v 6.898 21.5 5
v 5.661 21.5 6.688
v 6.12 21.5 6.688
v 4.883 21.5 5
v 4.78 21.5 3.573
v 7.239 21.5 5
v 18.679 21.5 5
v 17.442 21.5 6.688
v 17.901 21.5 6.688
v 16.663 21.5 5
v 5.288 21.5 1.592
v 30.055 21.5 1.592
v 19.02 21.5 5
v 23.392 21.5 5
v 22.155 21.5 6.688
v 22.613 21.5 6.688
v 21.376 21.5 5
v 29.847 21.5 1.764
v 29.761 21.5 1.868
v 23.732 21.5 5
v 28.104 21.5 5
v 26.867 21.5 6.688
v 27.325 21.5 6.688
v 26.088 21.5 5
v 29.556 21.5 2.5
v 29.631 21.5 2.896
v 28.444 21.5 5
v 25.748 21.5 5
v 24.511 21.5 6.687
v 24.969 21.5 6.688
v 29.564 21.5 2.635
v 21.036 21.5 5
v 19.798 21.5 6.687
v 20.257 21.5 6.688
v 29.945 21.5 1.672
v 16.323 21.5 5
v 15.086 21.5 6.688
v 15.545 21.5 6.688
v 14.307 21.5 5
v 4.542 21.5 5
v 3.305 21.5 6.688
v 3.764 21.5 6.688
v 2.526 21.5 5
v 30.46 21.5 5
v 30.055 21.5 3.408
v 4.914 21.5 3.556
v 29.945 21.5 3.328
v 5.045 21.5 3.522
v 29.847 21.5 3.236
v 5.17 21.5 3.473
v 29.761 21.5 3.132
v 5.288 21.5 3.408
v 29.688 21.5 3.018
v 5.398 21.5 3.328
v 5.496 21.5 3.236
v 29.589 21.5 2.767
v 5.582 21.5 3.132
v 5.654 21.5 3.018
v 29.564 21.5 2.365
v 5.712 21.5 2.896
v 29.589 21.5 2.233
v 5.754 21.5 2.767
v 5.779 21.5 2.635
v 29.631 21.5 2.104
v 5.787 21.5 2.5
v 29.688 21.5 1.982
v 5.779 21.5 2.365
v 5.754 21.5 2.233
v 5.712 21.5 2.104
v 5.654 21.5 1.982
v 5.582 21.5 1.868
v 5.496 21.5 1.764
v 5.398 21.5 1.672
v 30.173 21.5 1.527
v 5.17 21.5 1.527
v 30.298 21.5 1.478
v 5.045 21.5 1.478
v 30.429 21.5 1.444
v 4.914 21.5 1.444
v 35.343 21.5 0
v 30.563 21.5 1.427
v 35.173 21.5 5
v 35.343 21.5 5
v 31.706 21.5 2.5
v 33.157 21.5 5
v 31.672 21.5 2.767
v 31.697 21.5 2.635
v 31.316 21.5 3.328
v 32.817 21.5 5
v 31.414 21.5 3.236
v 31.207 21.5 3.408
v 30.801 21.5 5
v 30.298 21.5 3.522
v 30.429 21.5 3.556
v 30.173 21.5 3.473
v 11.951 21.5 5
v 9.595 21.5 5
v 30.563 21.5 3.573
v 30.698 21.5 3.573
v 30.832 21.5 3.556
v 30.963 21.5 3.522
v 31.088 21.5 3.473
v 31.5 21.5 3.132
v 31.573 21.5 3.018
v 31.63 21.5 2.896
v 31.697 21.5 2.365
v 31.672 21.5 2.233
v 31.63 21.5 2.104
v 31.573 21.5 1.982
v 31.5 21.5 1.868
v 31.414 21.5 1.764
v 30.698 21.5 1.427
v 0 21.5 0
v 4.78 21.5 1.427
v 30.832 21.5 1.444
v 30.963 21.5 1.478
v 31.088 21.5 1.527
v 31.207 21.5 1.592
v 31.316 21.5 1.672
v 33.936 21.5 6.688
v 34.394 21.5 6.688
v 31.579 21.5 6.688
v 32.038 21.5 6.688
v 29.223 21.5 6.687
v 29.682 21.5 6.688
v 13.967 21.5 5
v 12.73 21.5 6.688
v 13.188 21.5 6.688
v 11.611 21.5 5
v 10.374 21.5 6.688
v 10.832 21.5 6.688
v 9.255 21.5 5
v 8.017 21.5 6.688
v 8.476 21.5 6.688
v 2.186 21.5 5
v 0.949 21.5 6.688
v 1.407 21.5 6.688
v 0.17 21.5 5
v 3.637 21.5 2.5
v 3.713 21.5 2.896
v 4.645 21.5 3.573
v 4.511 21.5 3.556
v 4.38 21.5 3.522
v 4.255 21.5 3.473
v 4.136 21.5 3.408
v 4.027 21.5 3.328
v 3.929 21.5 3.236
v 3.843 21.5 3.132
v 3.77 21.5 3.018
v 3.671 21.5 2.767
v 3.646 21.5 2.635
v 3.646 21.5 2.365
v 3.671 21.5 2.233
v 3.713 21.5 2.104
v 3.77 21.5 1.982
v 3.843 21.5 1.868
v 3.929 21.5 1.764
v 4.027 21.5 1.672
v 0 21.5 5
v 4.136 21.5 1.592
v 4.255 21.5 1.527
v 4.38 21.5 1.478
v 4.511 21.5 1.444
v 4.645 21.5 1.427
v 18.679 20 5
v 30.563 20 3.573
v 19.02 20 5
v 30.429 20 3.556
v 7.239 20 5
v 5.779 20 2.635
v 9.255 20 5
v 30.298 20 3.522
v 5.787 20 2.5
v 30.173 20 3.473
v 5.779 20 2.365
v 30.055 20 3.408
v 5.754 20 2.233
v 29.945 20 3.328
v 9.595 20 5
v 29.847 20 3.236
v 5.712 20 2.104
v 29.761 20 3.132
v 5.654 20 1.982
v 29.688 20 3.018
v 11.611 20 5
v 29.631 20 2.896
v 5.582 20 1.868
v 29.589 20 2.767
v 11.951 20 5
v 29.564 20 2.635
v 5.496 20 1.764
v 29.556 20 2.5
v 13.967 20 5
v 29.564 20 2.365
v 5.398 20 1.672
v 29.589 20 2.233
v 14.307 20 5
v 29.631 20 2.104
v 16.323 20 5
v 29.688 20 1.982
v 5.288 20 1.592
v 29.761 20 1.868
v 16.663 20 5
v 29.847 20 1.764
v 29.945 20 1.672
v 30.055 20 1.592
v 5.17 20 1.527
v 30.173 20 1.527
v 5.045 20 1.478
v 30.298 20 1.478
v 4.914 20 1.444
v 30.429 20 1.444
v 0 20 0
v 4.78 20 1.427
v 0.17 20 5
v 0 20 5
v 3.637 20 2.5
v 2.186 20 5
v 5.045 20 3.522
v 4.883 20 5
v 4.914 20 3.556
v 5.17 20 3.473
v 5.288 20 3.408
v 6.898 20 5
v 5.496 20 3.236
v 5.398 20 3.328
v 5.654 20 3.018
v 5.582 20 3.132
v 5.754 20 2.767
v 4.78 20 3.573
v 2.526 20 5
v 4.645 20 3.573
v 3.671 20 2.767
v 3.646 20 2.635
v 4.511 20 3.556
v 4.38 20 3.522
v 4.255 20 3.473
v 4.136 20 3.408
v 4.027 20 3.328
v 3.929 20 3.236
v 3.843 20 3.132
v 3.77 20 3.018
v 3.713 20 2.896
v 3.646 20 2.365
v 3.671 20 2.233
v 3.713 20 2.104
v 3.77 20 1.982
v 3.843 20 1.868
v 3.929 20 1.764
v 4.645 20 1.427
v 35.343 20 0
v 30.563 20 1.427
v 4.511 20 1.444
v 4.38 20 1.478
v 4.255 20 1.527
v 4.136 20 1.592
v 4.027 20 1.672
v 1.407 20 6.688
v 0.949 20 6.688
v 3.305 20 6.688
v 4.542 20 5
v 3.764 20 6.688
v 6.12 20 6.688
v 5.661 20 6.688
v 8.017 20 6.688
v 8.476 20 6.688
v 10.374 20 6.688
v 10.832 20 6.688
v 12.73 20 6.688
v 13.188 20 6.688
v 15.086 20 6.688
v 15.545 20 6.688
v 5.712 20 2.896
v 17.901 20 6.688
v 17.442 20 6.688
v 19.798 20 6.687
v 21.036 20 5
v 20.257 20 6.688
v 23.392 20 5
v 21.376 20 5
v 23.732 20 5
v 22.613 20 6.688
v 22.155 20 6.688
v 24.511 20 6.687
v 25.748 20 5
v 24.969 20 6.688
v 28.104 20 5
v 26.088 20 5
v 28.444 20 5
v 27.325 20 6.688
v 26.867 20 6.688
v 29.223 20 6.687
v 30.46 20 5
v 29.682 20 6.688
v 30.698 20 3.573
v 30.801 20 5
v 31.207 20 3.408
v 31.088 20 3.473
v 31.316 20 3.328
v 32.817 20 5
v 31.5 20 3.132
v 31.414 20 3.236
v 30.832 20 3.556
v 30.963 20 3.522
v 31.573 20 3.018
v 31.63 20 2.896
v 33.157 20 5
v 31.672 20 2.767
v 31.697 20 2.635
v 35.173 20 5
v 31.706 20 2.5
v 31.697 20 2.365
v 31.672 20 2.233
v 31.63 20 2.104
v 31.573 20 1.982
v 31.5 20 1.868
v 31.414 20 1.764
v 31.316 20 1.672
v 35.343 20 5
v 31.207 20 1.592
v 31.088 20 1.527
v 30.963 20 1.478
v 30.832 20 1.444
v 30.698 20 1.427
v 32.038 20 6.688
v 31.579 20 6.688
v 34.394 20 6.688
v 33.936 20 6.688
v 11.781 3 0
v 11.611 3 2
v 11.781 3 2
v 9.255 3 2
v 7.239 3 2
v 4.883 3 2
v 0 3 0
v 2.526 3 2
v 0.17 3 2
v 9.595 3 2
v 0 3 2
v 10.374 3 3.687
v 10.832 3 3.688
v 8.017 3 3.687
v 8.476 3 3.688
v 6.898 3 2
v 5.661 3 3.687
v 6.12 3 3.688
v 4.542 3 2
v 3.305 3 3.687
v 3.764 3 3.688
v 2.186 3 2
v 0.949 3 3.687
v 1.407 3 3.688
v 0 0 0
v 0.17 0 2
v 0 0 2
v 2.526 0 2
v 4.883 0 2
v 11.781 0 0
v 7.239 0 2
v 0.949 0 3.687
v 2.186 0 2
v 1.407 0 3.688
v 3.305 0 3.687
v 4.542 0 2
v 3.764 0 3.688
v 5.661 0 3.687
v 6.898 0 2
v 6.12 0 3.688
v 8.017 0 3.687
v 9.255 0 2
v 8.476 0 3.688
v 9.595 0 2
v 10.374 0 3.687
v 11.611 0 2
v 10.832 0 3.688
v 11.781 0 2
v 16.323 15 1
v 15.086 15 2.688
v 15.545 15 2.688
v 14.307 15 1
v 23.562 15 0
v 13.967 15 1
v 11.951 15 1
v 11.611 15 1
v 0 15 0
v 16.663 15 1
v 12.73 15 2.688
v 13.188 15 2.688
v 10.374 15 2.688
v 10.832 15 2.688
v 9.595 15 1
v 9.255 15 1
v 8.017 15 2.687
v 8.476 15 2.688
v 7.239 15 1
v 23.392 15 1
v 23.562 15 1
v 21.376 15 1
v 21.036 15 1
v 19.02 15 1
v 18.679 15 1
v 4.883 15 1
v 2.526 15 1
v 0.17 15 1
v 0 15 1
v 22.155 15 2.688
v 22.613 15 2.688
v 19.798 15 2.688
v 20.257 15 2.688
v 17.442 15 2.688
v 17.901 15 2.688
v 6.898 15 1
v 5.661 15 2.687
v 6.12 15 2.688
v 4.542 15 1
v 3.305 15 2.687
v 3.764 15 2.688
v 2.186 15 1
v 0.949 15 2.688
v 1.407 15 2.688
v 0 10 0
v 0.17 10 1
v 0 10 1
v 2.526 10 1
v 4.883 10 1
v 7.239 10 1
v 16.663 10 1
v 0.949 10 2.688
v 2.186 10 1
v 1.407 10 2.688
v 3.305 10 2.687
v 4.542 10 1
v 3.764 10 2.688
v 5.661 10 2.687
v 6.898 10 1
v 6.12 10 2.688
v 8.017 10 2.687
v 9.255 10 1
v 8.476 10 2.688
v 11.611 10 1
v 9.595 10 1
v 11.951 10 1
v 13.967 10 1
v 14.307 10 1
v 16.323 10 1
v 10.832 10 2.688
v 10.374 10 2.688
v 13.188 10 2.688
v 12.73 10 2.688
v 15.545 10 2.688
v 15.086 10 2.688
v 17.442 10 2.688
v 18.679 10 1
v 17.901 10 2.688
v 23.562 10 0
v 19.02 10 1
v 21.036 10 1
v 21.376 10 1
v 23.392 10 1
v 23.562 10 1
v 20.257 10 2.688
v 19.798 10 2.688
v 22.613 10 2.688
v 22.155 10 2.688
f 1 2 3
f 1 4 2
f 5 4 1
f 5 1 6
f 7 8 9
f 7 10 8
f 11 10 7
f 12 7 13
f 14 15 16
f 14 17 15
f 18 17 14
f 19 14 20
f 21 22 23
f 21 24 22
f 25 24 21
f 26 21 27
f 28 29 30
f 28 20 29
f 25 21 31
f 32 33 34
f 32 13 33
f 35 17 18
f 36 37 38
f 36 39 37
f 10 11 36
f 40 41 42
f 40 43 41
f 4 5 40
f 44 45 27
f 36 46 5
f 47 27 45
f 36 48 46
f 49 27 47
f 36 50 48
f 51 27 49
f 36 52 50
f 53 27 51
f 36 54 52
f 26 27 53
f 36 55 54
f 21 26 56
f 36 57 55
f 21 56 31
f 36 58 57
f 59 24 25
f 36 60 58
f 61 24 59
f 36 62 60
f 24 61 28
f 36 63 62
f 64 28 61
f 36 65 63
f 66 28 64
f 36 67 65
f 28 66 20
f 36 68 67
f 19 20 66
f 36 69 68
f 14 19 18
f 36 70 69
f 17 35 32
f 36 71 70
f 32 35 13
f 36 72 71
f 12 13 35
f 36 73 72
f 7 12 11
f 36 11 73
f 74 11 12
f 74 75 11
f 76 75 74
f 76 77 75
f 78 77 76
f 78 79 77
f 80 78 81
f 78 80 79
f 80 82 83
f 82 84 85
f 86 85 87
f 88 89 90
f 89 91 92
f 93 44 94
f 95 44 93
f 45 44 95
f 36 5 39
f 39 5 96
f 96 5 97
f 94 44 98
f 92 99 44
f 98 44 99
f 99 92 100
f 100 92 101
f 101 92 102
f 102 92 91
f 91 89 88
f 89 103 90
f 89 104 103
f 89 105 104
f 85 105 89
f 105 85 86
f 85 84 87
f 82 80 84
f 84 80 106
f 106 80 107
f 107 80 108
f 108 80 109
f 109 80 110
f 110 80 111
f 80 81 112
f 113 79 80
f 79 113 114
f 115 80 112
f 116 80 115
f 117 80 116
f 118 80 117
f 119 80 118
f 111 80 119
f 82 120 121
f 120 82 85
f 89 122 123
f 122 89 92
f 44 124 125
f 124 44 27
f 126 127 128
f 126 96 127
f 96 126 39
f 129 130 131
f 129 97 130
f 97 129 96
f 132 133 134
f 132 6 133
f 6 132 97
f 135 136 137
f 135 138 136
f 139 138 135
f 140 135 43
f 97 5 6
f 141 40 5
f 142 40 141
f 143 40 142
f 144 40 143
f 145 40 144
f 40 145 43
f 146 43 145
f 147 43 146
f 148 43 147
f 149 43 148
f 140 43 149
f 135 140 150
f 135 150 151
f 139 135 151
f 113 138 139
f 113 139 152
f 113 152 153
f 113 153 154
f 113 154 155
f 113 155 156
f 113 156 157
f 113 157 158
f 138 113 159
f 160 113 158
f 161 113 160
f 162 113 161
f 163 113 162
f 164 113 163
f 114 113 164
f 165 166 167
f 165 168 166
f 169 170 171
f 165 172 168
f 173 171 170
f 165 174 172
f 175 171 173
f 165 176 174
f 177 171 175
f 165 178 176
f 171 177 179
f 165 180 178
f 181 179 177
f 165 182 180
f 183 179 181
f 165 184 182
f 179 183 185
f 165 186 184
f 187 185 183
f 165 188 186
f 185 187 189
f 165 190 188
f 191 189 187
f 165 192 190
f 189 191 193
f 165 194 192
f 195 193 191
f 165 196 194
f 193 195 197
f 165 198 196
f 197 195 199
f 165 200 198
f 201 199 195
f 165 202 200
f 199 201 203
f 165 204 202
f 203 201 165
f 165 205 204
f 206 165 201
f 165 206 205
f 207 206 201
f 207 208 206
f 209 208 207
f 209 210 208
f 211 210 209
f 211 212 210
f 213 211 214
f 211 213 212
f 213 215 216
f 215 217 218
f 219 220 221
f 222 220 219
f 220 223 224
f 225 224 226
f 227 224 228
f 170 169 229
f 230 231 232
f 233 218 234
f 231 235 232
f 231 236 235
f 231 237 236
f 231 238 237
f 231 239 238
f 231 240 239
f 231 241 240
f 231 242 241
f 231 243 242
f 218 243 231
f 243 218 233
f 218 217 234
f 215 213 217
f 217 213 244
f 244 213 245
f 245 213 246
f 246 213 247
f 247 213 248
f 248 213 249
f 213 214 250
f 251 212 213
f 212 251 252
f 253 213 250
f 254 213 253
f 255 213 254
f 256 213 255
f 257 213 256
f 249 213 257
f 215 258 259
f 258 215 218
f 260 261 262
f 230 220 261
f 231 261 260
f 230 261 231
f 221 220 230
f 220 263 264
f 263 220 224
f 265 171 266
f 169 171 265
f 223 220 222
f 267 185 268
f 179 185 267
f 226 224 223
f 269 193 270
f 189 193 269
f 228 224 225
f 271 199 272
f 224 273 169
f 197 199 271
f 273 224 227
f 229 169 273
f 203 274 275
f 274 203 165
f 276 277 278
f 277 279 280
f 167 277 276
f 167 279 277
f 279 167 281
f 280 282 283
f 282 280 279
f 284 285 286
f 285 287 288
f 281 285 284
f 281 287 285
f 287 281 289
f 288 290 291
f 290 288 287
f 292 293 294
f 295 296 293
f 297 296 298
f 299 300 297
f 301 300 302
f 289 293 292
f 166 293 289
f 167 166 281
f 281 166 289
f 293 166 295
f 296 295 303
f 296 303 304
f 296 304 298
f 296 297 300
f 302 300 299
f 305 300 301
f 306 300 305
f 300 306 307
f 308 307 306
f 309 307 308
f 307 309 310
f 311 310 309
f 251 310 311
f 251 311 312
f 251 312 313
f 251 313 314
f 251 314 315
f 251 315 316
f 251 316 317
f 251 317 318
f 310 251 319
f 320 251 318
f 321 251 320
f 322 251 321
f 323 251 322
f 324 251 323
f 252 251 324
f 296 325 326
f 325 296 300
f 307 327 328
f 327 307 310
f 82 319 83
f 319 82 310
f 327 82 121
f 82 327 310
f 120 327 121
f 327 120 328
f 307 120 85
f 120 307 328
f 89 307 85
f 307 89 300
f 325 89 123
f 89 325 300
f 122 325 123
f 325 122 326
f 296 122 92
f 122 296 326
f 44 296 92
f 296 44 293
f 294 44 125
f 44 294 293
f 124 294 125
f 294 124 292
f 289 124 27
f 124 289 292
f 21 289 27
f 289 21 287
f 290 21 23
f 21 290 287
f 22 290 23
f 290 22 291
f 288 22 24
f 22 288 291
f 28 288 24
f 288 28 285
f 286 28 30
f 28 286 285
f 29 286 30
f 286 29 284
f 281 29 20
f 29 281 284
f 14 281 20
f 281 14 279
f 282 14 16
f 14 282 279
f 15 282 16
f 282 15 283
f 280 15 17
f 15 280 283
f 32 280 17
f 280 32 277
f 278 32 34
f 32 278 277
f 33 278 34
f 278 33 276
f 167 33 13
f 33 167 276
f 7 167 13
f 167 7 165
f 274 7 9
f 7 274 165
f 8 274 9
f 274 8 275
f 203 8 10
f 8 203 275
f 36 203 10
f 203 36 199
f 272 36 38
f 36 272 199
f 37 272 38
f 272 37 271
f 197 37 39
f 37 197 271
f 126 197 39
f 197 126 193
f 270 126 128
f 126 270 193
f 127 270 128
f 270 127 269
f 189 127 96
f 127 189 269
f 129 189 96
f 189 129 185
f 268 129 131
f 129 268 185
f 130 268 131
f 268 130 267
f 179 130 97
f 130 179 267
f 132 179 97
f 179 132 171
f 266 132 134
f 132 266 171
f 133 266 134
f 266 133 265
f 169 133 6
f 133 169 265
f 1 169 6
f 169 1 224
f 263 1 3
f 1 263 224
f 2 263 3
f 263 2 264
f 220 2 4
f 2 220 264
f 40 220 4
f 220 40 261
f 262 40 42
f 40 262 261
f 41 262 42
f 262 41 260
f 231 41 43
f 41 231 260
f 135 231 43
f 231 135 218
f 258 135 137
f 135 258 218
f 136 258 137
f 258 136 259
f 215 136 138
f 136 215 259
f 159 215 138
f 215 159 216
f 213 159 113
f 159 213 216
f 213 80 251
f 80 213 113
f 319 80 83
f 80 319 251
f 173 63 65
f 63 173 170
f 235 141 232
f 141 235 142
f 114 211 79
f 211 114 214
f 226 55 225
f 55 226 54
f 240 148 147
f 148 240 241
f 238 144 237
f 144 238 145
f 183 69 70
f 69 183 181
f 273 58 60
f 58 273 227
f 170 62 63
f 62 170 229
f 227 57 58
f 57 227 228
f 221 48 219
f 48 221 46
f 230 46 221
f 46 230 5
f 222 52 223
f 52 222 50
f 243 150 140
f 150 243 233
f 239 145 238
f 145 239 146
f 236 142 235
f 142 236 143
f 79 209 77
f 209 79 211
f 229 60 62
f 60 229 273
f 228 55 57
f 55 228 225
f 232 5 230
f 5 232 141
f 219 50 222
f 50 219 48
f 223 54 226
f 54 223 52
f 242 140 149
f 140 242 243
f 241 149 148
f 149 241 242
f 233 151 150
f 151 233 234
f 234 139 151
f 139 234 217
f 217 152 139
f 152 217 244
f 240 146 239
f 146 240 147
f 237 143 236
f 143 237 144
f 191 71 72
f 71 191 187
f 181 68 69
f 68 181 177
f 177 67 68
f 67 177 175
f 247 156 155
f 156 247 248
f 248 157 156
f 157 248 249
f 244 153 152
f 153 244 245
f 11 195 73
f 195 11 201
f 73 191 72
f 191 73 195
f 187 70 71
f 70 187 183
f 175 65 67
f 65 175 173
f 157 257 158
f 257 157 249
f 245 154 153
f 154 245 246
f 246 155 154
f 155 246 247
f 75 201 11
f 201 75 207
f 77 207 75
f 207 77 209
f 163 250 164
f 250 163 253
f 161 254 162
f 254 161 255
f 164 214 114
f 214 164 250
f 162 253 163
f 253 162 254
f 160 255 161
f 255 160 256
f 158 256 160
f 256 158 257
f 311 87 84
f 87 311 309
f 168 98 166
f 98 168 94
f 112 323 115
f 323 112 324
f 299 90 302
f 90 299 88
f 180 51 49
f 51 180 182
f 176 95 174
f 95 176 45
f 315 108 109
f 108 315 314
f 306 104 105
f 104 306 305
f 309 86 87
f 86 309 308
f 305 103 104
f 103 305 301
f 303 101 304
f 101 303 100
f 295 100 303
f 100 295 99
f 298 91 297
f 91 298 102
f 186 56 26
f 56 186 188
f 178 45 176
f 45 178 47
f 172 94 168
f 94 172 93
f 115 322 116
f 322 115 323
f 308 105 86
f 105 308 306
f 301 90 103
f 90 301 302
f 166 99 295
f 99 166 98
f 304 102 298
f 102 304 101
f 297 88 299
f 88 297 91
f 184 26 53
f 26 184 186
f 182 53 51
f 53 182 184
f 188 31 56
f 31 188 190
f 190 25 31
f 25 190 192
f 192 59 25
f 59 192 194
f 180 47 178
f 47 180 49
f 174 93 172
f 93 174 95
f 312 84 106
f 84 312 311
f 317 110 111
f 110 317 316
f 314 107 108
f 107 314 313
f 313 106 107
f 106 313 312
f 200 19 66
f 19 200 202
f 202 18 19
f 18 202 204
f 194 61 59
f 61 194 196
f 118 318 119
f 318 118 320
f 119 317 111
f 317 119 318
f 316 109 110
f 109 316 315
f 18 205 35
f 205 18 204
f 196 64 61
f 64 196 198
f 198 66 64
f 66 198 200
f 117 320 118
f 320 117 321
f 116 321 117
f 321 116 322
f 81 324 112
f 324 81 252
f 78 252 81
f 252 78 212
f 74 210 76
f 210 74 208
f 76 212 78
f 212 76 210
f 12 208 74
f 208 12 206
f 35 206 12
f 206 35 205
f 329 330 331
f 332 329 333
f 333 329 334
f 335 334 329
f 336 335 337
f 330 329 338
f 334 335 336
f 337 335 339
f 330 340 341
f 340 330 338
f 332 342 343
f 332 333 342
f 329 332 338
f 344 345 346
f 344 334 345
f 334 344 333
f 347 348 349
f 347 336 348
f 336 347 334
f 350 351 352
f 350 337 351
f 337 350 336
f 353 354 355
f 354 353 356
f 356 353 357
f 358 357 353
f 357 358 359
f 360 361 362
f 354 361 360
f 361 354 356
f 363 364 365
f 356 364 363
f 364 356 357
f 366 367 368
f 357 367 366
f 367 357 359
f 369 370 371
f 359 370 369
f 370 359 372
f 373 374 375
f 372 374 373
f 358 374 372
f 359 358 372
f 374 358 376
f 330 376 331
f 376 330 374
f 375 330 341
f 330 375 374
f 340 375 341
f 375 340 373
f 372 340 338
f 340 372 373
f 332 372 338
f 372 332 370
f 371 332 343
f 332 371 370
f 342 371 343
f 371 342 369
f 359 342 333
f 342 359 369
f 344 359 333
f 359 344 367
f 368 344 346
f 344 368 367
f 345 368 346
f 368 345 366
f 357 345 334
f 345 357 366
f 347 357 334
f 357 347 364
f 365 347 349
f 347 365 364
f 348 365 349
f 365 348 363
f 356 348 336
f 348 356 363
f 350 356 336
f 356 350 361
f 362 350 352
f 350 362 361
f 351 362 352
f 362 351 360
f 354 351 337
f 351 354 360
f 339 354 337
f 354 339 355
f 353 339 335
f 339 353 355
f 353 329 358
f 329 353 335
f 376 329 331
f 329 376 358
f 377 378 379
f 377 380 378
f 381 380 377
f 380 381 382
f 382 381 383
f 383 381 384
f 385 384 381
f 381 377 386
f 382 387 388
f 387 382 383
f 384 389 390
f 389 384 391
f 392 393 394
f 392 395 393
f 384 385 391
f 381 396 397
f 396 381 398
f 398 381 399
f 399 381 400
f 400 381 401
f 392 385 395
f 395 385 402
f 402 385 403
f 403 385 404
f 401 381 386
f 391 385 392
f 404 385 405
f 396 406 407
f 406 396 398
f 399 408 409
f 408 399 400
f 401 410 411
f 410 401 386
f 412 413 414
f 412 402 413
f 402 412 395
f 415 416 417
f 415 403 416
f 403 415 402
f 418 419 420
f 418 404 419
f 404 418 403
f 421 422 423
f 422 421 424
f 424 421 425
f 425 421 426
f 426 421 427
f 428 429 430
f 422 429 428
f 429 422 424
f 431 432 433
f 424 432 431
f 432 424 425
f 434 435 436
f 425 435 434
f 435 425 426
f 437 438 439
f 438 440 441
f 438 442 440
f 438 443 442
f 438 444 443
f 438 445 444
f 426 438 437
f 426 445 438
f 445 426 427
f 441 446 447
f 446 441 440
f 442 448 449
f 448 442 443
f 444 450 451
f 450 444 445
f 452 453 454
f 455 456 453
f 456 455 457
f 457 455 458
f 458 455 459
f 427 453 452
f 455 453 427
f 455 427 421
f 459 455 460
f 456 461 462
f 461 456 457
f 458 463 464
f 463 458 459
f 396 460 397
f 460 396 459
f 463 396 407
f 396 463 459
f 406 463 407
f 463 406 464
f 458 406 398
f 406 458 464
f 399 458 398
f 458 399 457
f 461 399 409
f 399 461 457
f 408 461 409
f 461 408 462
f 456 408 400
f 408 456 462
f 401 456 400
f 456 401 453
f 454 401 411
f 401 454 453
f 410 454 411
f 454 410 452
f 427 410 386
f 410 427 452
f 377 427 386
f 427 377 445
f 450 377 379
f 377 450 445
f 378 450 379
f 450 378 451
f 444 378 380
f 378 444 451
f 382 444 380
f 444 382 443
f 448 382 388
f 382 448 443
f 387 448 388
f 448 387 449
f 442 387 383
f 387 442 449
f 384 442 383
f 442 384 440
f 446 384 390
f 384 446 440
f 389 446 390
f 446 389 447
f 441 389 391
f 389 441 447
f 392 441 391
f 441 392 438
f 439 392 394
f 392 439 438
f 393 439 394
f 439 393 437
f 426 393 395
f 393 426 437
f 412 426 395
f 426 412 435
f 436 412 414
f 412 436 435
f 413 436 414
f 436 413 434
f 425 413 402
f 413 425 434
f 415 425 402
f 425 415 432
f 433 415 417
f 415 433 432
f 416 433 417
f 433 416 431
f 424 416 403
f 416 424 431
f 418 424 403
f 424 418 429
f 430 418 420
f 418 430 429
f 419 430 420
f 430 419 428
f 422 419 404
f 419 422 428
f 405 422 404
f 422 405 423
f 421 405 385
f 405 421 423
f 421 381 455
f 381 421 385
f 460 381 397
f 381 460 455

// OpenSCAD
// file: ../src/involute.scad
include <constants.scad>
/**
  Evaluates the involute of a circle with radius r, for the parameter theta (in degrees)

  @param theta  Parameter value (in degrees)
  @param r      Circle radius
*/
function circle_involute(theta, r) = let (c = cos(theta), s = sin(theta))
  r * [c + theta * D2R * s, s - theta * D2R * c];

/**
  Returns the parameter theta (in degrees) for the intersection between the involute 
  of a circle with radius (or diameter) r and another circle with radius (or diameter) R.

  @param r  Involute circle radius
  @param R  Radius of "the other circle" or just a distance from the origin
*/
function circle_involute_intersect(r, R) = R2D * sqrt(pow(R / r, 2) - 1);

/**
  Returns the length of a circle involute in the interval [0,theta]

  @param theta  Parameter value (in degrees) 
  @param r      Involute circle radius
*/
function circle_involute_length(theta, r) = r * pow(D2R * theta, 2) / 2;
// file: ../src/arc.scad
include <constants.scad>
include <geom_helpers.scad>

/**
  Returns the length of a circular arc

  @param theta  Included angle (degrees)
  @param r      Radius [mm]
*/
function arc_length(theta, r) = (theta * D2R) * r;

/*
  Generates a circular arc by a modified version of the "Circle Spline" algorithm.
  
  Endpoint tangents and radius are given.
  The intersection point (corner) is located at (0, 0).
  Not possible here to check if the radius is too large w.r.t. the geometry.

  @param v1   Direction of the 1st line
  @param v2   Direction of the 2nd line
  @param r    Fillet radius
  @param res  Arc resolution
*/
function gen_arc(v1, v2, r, C = [0, 0], res = DEFAULT_ARC_RES) = let (
  a = normalize(v1),
  b = normalize(v2),
  tau = acos(a * b),
  zdir = sign(cross(a, b)),
  N = curve_segments(arc_length(tau, r), res),
  dtau = zdir * (tau / 2) / N,
  c = r * sqrt(2 * (1 - cos(tau))),
  d = r * tan(tau / 2),
  p0 = -d * a,
  V = [
    a,
    for (i = [1:N])
      let (cc = cos(i * dtau), ss = sin(i * dtau))
      a * [[cc, ss],[-ss, cc]]
  ]
) [
  C + p0,
  for (i = [1:N])
    let (
      u = i / N,
      tau_u = u * tau / 2,
      r_u = c * sin(u * tau_u) / sin(tau_u)
    )
    C + p0 + r_u * V[i]
];
// file: ../src/geom_helpers.scad
include <constants.scad>

/**
  Returns the number of line segments required to generate a curve at a given resolution.

  @param L    Curve length (line integral) [mm]
  @param res  Resolution [mm]
*/
function curve_segments(L, res) = min(MAX_ARC_SEGM, max(MIN_ARC_SEGM, floor(L / res + .5)));

/**
  Mirrors the 2D-vector(s) in v about the axis a

  Usage:
    P = [[1, 0], [1, 1], [1, 2]];
    a = [0, 1];
    Pm = mirror2(P, a);

  @param v  Vector(s) to mirror [[v0], [v1], ..., [vn]]
  @param a  Mirror axis: a = [ax, ay]
*/
function mirror2(v, a) = let (
    // a * a'
    A = [
      [a[0] * a[0], a[0] * a[1]],
      [a[1] * a[0], a[1] * a[1]]
    ]
  )
  v - 2 * v * (EYE2 - A);

/**
  Reverses the order of the items in the given array

  Usage:
    P = [[0,1],[1,0],[2,1], [2,2],[1,3],[0,2]];
    Pr = reverse(P);

  @param arr  1-dimensional array with items of any type
*/
function reverse(arr) = [for (k = [len(arr)-1:-1:0]) arr[k]];

/**
  Inverse of 2-by-2 matrix
*/
function inv2(A) = let (detA = A[0][0] * A[1][1] - A[0][1] * A[1][0])
  [[A[1][1], -A[0][1]], [-A[1][0], A[0][0]]] / detA;

/**
  Returns the intersection between two lines given in parametric form

  Line 1: P + s * u
  Line 2: Q + t * v
*/
function line_line_intersect(P, u, Q, v) = let (
    x = [Q - P] * inv2([u, -v])
  )
  P + x[0][0] * u;

/**
  Returns the normalized vector (v)
*/
function normalize(v) = v / norm(v);
// file: ../src/constants.scad
D2R = PI / 180;
R2D = 180 / PI;
MIN_ARC_SEGM = 1;
MAX_ARC_SEGM = 1000;
DEFAULT_ARC_RES = 0.1;
EYE2 = [[1, 0], [0, 1]];
RZ90 = [[0, 1], [-1, 0]];
RZ90N = [[0, -1], [1, 0]];
TYPE_PINION = "pinion";
TYPE_RACK = "rack";
// file: ../src/spur_gear_rack.scad
include <constants.scad>
include <prop_helpers.scad>
include <geom_helpers.scad>
include <involute.scad>

/*
  Gear rack initialization

  @param props      Properties obtained from `spur_gear_init`
  @param z          No. of teeth
  @param width      Gear rack width [mm]
  @param thickness  Gear rack thickness [mm]
*/
function spur_gear_rack_init(props, z, width, thickness) =
  assert(z > 0, "No. of teeth (z) must be greater than 0")
  assert(width > 0, "Width must be greater than 0")
  assert(thickness > 0, "Thickness must be greater than 0")
  let (
    m = find_prop_value("m", props),
    b = find_prop_value("b", props),
    alpha = find_prop_value("alpha", props),
    r = find_prop_value("r", props),
    P = find_prop_value("P", props),

    pitch = PI * m,
    // Center line for the gear rack tooth (pointing outwards)
    w = normalize(P[3]),
    // Create the normal vector (wn) by rotating (w) by 90 degrees
    wn = w * RZ90,
    // Tangent points for the "pressure vector"
    T = circle_involute(alpha, r),
    Tm = mirror2(T, normalize(P[1])),
    Tm2 = mirror2(Tm, w),
    // Gear rack (A)ddendum and (D)edendum points along the tooth center line
    M = (Tm + Tm2) / 2,
    Pa = M - m * w,
    Pd = M + b * w,
    // Gear rack profile
    //  Solve for the rack segment starting point
    //  Intersect the vector (wn) through the points A and D, with the tangent (t) through the point (Tm)
    t = mirror2([cos(alpha), sin(alpha)], normalize(P[1])),
    R = [
      Pd - (pitch / 2) * wn,
      line_line_intersect(Pd, wn, Tm, t),
      line_line_intersect(Pa, wn, Tm, t)
    ],
    rack_profile = concat(R, mirror2(reverse(R), w)),
    Pref = rack_profile[0] + thickness * w,
    // Generate the rack polygon (with the rack teeth) by sequential translations of the gear rack profile along the vector (wn)
    rack_polygon = [
      for (i = [0:z-1])
        let (T = i * pitch * wn - Pref)
        for (j = [0:len(rack_profile)-1])
          rack_profile[j] + T,
        rack_profile[0] - Pref + z * pitch * wn + thickness * w,
        rack_profile[0] - Pref + thickness * w,
    ] * [[w[0], wn[0]], [w[1], wn[1]]] * RZ90N
  ) [
  ["m", m],
  ["alpha", alpha],
  ["b", b],
  ["z", z],
  ["pitch", pitch],
  ["width", width],
  ["thickness", thickness],
  ["rack_polygon", rack_polygon],
];

/*
  Create gear rack

  @param props  Properties obtained from `spur_gear_rack_init`
*/
module spur_gear_rack(props) {
  width = find_prop_value("width", props);
  thickness = find_prop_value("thickness", props);
  rack_polygon = find_prop_value("rack_polygon", props);

  render(convexity = 2)
    linear_extrude(width)
      polygon(rack_polygon);
}
// file: ../src/spur_gear_pinion.scad
include <constants.scad>
include <prop_helpers.scad>
include <geom_helpers.scad>
include <arc.scad>
include <involute.scad>

/**
  Pinion initialization

  @param props      Properties obtained from `spur_gear_init`
  @param w          Width [mm]
  @param arc_resol  Arc resolution [mm]
*/
function spur_gear_pinion_init(props, w, arc_resol = DEFAULT_ARC_RES) =
  assert(w > 0, "Width (w) must be greater than 0")
  assert(arc_resol > 0, "Arc resolution (arc_resol) must be greater than 0")
 let (
  m = find_prop_value("m", props),
  b = find_prop_value("b", props),
  alpha = find_prop_value("alpha", props),
  z = find_prop_value("z", props),
  r = find_prop_value("r", props),
  P = find_prop_value("P", props),
  cp = find_prop_value("cp", props),
  D = find_prop_value("D", props),
  Db = find_prop_value("Db", props),
  Dr = find_prop_value("Dr", props),
  Dc = find_prop_value("Dc", props),
  Dp = find_prop_value("Dp", props),

  theta_a = circle_involute_intersect(Db, D),    // Intersection between the circle involute and the addendum circle
  // pa = circle_involute(theta_a, r),
  // Generate point along the gear tooth profile (from the base circle, theta=0, to the addendum circle, theta=theta_a)
  L = circle_involute_length(theta_a, r),
  N = curve_segments(L, arc_resol),  
  profile = [
    [Dr / 2, 0],
    for (k = [0:N])
      // let (theta = k * theta_a / N) // non-uniform arc length parametrization
      let (theta = circle_involute_param(k * L / N, r)) // uniform arc length parametrization
      circle_involute(theta, r)
  ],
  // Mirror the gear profile about the axis P[1], reversed order
  profile_m = mirror2(reverse(profile), normalize(P[1])),
  // Included angle of the addendum arc
  v1 = normalize(profile[len(profile)-1]),
  v2 = normalize(profile_m[0]),
  ang_a = acos(v1*v2),
  Ta = [v1, [-v1[1], v1[0]]],
  // Included angle of the root arc
  u1 = normalize(profile[0]),
  u2 = normalize(profile_m[len(profile_m)-1]),
  ang_r = cp - acos(u1*u2),
  Tr = [u2, [-u2[1], u2[0]]],
  // Generate points on the addendum and root arcs (for the gear tooth profile)
  Na = curve_segments(arc_length(ang_a, D / 2), arc_resol),
  Nr = curve_segments(arc_length(ang_r, Dr / 2), arc_resol),
  profile_a = [for (k = [0:Na])
    (D / 2) * [cos(k * ang_a / Na), sin(k * ang_a / Na)] * Ta
  ],
  profile_r = [for (k = [0:Nr])
    (Dr / 2) * [cos(k * ang_r / Nr), sin(k * ang_r / Nr)] * Tr
  ],
  // Generate the complete polygon for the pinion by a sequence of rotations of the base profile about the z-axis
  pinion_profile = concat(profile, profile_a, profile_m, profile_r),
  pinion_polygon = [
    for (i = [0:z-1])
      let (
        c = i == 0 ? 0 : cos(i * cp),
        s = i == 0 ? 0 : sin(i * cp),
        Rz = i == 0 ? [] : [[c, s], [-s, c]]
      )
      for (j = [0:len(pinion_profile)-1])
        i == 0 ? pinion_profile[j] : pinion_profile[j] * Rz
  ]
) [
  ["m", m],
  ["alpha", alpha],
  ["b", b],
  ["z", z],
  ["cp", cp],
  ["w", w],
  ["D", D],
  ["Db", Db], ["r", r],
  ["Dc", Dc],
  ["Dp", Dp],
  ["Dr", Dr],
  ["pinion_polygon", pinion_polygon],
];

/**
  Create pinion

  @param props  Properties obtained from `spur_gear_pinion_init`
*/
module spur_gear_pinion(props) {
  w = find_prop_value("w", props);
  pinion_polygon = find_prop_value("pinion_polygon", props);
  
  render(convexity = 2)
    linear_extrude(w)
      polygon(pinion_polygon);
}
// file: ../src/spur_gear_init.scad
include <constants.scad>
include <prop_helpers.scad>
include <geom_helpers.scad>
include <arc.scad>
include <involute.scad>

/**
  Spur Gear Initialization

  @param m          Module (addendum) [mm]
  @param z          No. of teeth
  @param alpha      Pressure angle [deg]
*/
function spur_gear_init(z, m, alpha) =
  assert(z > 0, "No. of teeth (z) must be greater than 0")
  assert(m > 0, "Module (m) must be greater than 0")
  assert(alpha > 0, "Pressure angle (alpha) must be greater than 0")
  let (
  Dp = m * z,           // Pitch circle diam.
  Db = Dp * cos(alpha), // Base circle diam.
  r = Db / 2,
  D = Dp + 2 * m,       // Addendum circle diam.
  Dc = Dp - 2 * m,      // Clearance circle diam.
  b = 1.25 * m,         // Dedendum
  Dr = Dp - 2 * b,      // Root circle diam.
  cp = 360 / z,         // Circular pitch angle, same as 2*PI*P/(PI*Dp)
  theta_p = circle_involute_intersect(r, Dp / 2),  // Intersection between the circle involute and the pitch circle
  // Generate the "construction points"
  // Rotate the intersection point to get intermediate points along the pitch circle
  //  1/4: defines the vector used when mirroring, i.e. the tooth center line
  //  3/4: used to construct the gear rack
  p = circle_involute(theta_p, r),
  P = [
    p,
    for (k = [1:4])
      let (a = k * cp / 4, c = cos(a), s = sin(a), Rz = [[c, s], [-s, c]])
      p * Rz
  ]
) [
  ["m", m],
  ["alpha", alpha],
  ["b", b],
  ["z", z],
  ["cp", cp],
  ["D", D],
  ["Db", Db], ["r", r],
  ["Dc", Dc],
  ["Dp", Dp],
  ["Dr", Dr],
  ["P", P],
];
// file: ../src/prop_helpers.scad
function find_prop_index(prop_name, arr) =
  search([prop_name], arr, num_returns_per_match = 1, index_col_num = 0)[0];

function find_prop_value(prop_name, arr) =
  arr[search([prop_name], arr, num_returns_per_match = 1, index_col_num = 0)[0]][1];
// file: ../src/version.scad
SPURGEAR_SEMVER = [1, 1, 1];

function spurgear_required(ver) =
  assert(len(ver) == 3, "Version array must have three semantic version elements")
  SPURGEAR_SEMVER[0] >= ver[0] && SPURGEAR_SEMVER[1] >= ver[1] && SPURGEAR_SEMVER[2] >= ver[2];
// file: ../SpurGear.scad
include <src/version.scad>
include <src/prop_helpers.scad>
include <src/spur_gear_init.scad>
include <src/spur_gear_pinion.scad>
include <src/spur_gear_rack.scad>

/*****************************************************************************
  spur_gear_init(z, m, alpha)
******************************************************************************
  Spur Gear Initialization

  Parameters:
    m - Module (addendum) [mm]
    z - No. of teeth
    alpha - Pressure angle [deg]
*****************************************************************************/

/*****************************************************************************
  spur_gear_pinion_init(props, w, arc_resol = DEFAULT_ARC_RES)
******************************************************************************
  Pinion initialization

  Parameters:
    props - Properties obtained from `spur_gear_init`
    w - Width [mm]
    arc_resol - Arc resolution [mm]
*****************************************************************************/

/*****************************************************************************
  spur_gear_pinion(props)
******************************************************************************
  Create pinion

  Parameters:
    props - Properties obtained from `spur_gear_pinion_init`
*****************************************************************************/

/*****************************************************************************
  spur_gear_rack_init(props, z, width, thickness)
******************************************************************************
  Gear rack initialization

  Parameters:
    props - Properties obtained from `spur_gear_init`
    z - No. of teeth
    width - Gear rack width [mm]
    thickness - Gear rack thickness [mm]
*****************************************************************************/

/*****************************************************************************
  spur_gear_rack(props)
******************************************************************************
  Create gear rack

  Parameters:
    props - Properties obtained from `spur_gear_rack_init`
*****************************************************************************/
// main file
use <../SpurGear.scad>
assert(spurgear_required([1, 0, 0]), "Please upgrade SpurGear library to version 1.0.0 or higher");

module GearRacks() {
  gear = spur_gear_init(z = 16, m = 0.75, alpha = 20.0);
  gear_rack_props1 = spur_gear_rack_init(gear, z = 5, width = 3.0, thickness = 2.0);
  gear_rack_props2 = spur_gear_rack_init(gear, z = 10, width = 5.0, thickness = 1.0);
  gear_rack_props3 = spur_gear_rack_init(gear, z = 15, width = 1.5, thickness = 5.0);

  translate([0, 3.0, 0])
  rotate([90, 0, 0])
  spur_gear_rack(gear_rack_props1);

  translate([0, 10 + 5.0, 0])
  rotate([90, 0, 0])
  spur_gear_rack(gear_rack_props2);

  z3 = find_prop_value("z", gear_rack_props3);
  pitch3 = find_prop_value("pitch", gear_rack_props3);

  translate([0, 20 + 1.5, 0])
  rotate([90, 0, 0])
  difference() {
    spur_gear_rack(gear_rack_props3);
    translate([2*pitch3, 5.0/2, -1e-2])
      cylinder(h = 1.5 + 2e-2, d = 2.15, center = false);
    translate([(z3-2)*pitch3, 5.0/2, -1e-2])
      cylinder(h = 1.5 + 2e-2, d = 2.15, center = false);
  }
}

GearRacks($fn = 50);
